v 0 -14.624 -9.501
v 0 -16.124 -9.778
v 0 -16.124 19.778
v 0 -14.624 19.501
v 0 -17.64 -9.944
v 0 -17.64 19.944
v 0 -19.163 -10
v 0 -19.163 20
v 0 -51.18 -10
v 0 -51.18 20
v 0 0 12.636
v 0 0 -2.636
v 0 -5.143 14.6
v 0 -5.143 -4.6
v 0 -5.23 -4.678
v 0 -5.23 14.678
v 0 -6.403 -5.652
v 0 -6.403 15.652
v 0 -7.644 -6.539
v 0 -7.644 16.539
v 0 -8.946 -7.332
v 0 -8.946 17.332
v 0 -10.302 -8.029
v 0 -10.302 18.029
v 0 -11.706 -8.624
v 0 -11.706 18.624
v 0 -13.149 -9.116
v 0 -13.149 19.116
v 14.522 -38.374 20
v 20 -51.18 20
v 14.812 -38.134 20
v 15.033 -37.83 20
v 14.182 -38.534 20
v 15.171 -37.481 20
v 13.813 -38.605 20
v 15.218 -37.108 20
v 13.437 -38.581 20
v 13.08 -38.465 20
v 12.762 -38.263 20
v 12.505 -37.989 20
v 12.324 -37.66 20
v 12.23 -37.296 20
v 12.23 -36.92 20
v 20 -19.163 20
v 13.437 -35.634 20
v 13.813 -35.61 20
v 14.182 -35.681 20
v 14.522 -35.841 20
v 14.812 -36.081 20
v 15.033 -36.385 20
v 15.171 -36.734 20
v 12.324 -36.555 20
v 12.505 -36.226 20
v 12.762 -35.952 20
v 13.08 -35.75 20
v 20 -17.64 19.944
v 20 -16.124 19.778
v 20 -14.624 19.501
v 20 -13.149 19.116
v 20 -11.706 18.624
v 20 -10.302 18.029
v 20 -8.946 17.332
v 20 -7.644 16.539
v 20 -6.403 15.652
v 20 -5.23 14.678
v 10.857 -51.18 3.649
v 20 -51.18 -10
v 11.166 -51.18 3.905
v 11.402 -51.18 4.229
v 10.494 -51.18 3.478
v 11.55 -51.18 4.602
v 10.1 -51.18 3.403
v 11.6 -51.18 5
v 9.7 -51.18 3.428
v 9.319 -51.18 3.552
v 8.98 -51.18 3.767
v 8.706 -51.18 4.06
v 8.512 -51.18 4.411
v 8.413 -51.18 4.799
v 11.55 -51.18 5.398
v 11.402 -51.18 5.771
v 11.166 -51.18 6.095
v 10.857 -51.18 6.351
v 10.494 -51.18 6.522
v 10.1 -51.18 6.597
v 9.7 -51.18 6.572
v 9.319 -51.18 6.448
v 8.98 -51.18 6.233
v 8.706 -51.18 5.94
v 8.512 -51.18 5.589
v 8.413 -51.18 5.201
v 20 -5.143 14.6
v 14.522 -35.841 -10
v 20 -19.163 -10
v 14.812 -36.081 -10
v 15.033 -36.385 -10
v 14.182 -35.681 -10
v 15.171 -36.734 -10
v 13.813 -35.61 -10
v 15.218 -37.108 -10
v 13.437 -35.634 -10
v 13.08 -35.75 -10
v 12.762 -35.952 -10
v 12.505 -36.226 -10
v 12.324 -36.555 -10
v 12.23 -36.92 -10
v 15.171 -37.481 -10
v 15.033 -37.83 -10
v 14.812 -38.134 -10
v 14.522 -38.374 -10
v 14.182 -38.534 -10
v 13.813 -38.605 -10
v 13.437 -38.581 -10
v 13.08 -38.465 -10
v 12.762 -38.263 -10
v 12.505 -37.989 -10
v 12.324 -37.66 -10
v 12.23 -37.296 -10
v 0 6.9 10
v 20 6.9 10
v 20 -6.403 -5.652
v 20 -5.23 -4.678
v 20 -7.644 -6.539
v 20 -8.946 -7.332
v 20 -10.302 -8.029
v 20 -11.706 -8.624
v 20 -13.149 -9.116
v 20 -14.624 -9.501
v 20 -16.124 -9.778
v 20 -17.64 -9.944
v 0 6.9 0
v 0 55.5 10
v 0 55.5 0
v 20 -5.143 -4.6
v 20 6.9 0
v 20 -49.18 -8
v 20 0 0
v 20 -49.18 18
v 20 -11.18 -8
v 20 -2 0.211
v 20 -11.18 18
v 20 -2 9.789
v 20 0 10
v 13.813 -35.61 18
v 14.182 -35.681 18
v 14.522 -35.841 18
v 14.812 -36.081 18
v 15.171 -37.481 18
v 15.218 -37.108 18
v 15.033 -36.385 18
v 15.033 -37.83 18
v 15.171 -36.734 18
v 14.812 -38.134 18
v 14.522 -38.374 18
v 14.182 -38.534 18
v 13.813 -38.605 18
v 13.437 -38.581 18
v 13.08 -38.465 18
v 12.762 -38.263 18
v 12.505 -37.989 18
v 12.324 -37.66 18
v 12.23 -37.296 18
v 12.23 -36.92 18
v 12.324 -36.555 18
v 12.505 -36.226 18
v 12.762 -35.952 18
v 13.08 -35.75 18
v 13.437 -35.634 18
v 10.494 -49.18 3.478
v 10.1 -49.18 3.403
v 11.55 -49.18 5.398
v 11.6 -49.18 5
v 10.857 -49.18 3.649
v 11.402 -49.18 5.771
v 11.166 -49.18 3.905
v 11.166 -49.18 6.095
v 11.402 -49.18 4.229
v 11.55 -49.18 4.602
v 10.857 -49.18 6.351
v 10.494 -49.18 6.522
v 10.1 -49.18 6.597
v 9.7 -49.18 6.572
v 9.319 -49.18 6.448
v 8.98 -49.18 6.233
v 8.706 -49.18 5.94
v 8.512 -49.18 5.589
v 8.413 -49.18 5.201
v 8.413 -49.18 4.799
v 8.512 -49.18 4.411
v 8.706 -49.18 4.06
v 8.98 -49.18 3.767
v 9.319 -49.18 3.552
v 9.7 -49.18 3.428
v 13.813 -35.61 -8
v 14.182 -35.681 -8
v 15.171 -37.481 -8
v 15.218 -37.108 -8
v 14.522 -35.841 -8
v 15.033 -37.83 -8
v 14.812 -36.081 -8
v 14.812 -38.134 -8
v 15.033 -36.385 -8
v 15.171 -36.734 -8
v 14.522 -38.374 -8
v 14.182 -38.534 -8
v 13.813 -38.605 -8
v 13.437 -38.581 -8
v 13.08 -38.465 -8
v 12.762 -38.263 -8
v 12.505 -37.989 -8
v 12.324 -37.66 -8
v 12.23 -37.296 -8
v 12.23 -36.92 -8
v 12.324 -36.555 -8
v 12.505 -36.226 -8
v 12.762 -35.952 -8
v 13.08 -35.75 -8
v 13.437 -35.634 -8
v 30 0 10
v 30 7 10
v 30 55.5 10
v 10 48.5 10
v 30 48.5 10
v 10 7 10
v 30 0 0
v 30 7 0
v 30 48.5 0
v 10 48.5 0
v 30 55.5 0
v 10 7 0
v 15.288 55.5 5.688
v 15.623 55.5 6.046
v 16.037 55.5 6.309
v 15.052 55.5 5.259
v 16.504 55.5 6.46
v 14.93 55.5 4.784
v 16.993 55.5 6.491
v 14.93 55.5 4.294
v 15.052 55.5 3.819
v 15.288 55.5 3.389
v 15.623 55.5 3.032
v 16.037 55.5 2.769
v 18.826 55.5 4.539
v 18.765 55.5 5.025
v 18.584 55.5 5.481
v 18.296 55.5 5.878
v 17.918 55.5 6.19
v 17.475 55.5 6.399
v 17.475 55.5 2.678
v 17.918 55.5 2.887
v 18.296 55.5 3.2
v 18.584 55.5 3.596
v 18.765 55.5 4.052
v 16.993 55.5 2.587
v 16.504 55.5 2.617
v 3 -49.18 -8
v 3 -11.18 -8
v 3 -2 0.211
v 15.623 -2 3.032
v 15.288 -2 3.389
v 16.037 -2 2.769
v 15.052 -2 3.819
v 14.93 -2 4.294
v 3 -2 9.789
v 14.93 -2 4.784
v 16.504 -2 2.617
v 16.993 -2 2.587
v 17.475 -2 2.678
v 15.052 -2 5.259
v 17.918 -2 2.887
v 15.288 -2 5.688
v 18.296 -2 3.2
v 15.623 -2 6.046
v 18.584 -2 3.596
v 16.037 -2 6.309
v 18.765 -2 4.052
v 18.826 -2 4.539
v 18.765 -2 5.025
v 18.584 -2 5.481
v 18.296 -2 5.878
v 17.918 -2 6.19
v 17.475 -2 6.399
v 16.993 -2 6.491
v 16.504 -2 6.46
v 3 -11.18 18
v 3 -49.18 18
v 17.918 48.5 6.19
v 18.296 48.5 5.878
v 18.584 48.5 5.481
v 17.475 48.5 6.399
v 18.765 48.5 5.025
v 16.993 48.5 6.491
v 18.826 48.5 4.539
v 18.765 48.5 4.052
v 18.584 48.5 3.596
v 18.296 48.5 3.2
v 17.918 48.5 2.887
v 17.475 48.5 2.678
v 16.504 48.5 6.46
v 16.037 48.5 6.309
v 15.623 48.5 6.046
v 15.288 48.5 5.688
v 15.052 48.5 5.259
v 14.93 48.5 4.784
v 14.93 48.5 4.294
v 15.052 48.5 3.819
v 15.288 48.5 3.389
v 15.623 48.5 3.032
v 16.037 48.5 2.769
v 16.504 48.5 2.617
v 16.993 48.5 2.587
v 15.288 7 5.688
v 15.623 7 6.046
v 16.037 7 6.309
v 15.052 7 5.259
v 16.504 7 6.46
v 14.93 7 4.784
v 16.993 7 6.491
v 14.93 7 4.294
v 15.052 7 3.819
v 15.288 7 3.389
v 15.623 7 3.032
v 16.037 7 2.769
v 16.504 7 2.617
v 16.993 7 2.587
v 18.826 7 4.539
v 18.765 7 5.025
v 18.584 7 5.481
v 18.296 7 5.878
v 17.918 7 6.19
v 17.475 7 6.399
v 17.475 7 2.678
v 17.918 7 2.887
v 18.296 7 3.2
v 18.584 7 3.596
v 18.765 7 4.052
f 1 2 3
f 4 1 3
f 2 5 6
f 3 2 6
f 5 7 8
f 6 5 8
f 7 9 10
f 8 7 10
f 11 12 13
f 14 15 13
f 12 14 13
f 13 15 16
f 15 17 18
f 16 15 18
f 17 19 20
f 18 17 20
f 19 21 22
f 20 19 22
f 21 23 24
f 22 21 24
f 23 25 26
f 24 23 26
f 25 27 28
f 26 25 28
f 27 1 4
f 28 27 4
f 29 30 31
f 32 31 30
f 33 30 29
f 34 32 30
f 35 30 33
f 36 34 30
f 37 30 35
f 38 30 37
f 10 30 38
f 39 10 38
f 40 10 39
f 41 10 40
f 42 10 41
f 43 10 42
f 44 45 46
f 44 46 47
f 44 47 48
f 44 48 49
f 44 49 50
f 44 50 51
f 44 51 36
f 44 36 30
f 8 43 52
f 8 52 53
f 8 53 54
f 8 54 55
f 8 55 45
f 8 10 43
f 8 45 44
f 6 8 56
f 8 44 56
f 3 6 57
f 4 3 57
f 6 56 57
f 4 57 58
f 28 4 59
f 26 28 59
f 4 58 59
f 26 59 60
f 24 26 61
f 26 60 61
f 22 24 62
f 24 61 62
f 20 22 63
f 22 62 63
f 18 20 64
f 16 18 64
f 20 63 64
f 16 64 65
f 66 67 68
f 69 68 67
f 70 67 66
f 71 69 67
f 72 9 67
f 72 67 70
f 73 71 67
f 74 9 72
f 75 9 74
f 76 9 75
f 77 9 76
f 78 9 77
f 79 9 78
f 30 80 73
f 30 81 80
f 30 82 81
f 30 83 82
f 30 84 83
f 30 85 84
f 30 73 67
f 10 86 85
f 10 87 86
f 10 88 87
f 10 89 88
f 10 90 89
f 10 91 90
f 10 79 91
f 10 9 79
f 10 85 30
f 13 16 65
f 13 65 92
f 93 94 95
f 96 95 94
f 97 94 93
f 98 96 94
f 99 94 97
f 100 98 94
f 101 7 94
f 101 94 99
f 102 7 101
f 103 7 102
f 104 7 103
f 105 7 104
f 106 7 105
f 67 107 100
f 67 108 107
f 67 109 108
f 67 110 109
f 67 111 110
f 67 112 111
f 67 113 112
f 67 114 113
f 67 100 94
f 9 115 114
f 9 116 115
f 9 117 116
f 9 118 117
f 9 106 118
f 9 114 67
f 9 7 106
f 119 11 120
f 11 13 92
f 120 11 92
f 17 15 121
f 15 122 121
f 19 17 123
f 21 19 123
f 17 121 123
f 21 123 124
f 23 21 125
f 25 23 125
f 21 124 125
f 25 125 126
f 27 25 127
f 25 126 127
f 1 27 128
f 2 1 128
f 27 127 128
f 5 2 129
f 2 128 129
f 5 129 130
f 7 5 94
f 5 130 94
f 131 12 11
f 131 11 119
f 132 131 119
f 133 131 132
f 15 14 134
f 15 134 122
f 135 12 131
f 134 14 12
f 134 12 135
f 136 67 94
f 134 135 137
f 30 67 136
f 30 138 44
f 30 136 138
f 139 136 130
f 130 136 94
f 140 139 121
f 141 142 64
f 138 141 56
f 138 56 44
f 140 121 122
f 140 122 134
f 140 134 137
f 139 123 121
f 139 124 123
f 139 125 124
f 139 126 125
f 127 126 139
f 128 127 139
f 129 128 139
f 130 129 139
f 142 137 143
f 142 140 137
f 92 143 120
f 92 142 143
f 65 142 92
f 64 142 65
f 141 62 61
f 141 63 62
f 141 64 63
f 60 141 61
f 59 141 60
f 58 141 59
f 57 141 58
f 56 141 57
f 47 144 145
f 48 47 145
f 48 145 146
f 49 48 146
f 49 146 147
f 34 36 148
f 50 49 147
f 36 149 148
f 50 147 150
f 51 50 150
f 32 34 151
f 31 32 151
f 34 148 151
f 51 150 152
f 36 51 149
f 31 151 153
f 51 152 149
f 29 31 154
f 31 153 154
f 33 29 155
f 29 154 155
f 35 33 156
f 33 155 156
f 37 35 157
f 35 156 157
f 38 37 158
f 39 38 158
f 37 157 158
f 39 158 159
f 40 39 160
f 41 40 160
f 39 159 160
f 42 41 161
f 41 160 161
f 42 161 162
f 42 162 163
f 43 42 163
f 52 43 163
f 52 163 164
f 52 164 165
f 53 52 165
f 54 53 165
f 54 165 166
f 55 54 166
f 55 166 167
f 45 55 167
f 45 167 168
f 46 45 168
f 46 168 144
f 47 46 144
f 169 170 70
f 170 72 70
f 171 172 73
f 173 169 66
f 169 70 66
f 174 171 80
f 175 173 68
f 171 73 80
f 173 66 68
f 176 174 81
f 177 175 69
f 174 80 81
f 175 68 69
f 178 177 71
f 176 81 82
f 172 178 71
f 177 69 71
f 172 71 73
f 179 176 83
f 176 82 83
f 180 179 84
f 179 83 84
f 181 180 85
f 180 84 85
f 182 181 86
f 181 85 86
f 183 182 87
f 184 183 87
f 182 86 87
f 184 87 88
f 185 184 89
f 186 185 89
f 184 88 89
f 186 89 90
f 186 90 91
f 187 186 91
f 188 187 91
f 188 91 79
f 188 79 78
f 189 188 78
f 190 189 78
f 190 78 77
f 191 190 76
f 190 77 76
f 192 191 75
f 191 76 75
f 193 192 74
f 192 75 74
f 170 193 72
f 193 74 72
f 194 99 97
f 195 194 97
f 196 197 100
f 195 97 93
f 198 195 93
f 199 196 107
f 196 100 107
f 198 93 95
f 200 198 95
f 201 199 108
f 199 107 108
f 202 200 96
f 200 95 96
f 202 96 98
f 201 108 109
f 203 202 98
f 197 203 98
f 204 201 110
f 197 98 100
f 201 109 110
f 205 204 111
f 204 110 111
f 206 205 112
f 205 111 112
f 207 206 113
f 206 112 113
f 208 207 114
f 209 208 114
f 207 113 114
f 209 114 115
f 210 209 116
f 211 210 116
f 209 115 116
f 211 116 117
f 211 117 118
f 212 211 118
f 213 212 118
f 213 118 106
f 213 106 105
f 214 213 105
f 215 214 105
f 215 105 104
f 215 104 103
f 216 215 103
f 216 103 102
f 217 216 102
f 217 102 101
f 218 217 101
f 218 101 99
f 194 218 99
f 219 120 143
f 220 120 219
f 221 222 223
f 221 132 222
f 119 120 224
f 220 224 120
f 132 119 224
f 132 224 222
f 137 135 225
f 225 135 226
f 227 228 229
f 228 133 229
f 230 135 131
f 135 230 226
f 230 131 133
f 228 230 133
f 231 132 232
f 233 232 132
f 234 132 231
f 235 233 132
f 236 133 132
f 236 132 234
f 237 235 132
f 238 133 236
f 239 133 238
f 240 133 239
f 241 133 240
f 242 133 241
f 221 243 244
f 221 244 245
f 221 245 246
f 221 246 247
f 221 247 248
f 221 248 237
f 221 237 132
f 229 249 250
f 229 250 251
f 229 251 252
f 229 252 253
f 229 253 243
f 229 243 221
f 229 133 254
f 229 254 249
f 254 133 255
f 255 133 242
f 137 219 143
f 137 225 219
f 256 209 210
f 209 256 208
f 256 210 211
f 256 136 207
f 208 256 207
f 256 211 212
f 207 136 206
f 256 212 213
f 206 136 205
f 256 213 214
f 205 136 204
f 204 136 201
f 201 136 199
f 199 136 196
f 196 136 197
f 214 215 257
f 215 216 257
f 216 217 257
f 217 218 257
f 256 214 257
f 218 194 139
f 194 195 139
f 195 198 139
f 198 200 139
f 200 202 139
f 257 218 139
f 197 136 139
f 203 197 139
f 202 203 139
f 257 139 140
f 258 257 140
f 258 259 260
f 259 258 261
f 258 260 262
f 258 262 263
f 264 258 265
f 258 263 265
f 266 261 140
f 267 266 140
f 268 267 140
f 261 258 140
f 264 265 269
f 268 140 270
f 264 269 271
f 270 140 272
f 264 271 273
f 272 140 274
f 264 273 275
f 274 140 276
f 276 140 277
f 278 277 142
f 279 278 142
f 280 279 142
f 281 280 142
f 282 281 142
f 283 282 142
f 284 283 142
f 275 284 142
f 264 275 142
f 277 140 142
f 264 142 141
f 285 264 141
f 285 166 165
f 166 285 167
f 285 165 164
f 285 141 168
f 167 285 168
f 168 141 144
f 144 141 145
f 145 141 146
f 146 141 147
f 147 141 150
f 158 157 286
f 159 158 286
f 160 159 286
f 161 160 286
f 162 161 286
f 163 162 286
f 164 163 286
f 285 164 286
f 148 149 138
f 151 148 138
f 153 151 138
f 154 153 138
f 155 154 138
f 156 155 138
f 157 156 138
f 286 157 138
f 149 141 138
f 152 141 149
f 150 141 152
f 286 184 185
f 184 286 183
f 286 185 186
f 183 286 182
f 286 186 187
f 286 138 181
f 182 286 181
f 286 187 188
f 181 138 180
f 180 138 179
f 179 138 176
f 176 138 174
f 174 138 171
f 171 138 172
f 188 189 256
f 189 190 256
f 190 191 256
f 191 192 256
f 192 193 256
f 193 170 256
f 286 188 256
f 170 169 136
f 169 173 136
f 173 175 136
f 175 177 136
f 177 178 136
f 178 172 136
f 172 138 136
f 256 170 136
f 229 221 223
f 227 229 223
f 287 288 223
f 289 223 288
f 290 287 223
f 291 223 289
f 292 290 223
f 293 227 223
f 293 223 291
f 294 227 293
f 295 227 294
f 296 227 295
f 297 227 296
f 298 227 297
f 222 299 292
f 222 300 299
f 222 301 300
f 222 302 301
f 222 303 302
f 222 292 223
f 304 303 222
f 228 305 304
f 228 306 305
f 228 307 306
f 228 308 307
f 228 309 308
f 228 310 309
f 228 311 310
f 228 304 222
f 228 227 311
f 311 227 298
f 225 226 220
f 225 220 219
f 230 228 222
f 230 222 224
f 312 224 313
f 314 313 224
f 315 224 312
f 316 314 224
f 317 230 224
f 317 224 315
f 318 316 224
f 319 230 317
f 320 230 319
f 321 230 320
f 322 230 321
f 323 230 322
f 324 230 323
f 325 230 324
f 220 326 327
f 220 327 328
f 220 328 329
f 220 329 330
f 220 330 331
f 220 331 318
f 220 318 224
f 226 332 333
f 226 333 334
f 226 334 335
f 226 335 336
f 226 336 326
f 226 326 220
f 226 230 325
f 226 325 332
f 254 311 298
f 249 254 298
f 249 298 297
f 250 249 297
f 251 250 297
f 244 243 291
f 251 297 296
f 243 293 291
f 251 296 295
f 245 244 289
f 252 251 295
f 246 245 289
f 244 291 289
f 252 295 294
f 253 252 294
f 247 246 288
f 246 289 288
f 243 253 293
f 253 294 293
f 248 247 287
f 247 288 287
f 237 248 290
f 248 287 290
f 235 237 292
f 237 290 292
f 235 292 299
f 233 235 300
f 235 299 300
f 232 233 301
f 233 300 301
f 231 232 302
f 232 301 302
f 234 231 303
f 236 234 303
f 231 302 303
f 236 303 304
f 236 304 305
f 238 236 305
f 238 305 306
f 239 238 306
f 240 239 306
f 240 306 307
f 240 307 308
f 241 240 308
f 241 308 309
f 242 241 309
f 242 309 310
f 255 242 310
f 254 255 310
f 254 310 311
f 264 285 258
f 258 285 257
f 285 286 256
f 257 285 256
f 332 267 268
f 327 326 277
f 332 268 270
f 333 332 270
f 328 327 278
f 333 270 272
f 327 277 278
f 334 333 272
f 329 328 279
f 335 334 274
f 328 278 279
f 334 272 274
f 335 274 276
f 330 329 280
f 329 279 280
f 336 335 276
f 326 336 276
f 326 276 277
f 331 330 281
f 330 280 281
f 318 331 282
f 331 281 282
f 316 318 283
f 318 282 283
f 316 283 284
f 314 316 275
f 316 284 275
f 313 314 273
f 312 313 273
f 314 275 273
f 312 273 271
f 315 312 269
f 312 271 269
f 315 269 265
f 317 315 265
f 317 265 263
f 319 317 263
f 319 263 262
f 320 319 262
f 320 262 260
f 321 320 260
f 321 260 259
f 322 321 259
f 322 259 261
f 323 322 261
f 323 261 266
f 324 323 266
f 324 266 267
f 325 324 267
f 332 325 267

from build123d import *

# Parameters (mm, degrees)
PAD_DEPTH       = 10
PAD001_DEPTH    = 20
SKETCH002_R     = 1.6
POCKET_DEPTH    = 17
POCKET001_DEPTH = 17
SKETCH004_R     = 1.956014
POCKET002_DEPTH = 57.501
SKETCH005_R     = 1.5
POCKET003_DEPTH = 30.001
CHAMFER_SIZE    = 6.9
CHAMFER001_SIZE = 6.9
FILLET_R        = 20.9
FILLET001_R     = 20.9


with BuildPart() as part:
    # Sketch → Pad (new body)
    with BuildSketch(Plane.XY):
        Polygon((30, 55.5), (30, 48.5), (10, 48.5), (10, 7), (30, 7), (30, 0), (0, 0), (0, 55.5), align=None)
    extrude(amount=PAD_DEPTH)

    # Sketch001 → Pad001 (new body)
    with BuildSketch(Plane(origin=(0, 0, 0), x_dir=(0, -1, 0), z_dir=(-1, 0, 0))):
        Polygon((0, 10), (0, 0), (11.18034, -10), (51.18034, -10), (51.18034, 20), (11.18034, 20), align=None)
    extrude(amount=-PAD001_DEPTH)

    # Sketch002 → Pocket (cut)
    with BuildSketch(Plane.XZ.offset(51.18034)):
        with Locations((10, 5)):
            Circle(SKETCH002_R)
    extrude(amount=-POCKET_DEPTH, mode=Mode.SUBTRACT)

    # Sketch003 → Pocket001 (cut)
    with BuildSketch(Plane.YZ.offset(20)):
        Polygon((-49.18034, 18), (-49.18034, -8), (-11.180357, -8), (-2, 0.211161), (-2, 9.788839), (-11.180357, 18), align=None)
    extrude(amount=-POCKET001_DEPTH, mode=Mode.SUBTRACT)

    # Sketch004 → Pocket002 (cut, through all)
    with BuildSketch(Plane.XZ.offset(2)):
        with Locations((16.870201, 4.538767)):
            Circle(SKETCH004_R)
    extrude(amount=-POCKET002_DEPTH, mode=Mode.SUBTRACT)

    # Sketch005 → Pocket003 (cut, through all)
    with BuildSketch(Plane(origin=(0, 0, -10), x_dir=(1, 0, 0), z_dir=(0, 0, -1))):
        with Locations((13.718381, 37.10752)):
            Circle(SKETCH005_R)
    extrude(amount=-POCKET003_DEPTH, mode=Mode.SUBTRACT)

    # Chamfer
    chamfer_edges = [part.edges().sort_by_distance(p)[0] for p in [
        (10, 0, 0),
    ]]
    chamfer(chamfer_edges, length=CHAMFER_SIZE)

    # Chamfer001
    chamfer001_edges = [part.edges().sort_by_distance(p)[0] for p in [
        (10, 0, 10),
    ]]
    chamfer(chamfer001_edges, length=CHAMFER001_SIZE)

    # Fillet
    fillet_edges = [part.edges().sort_by_distance(p)[0] for p in [
        (10, -11.18034, -10),
    ]]
    fillet(fillet_edges, radius=FILLET_R)

    # Fillet001
    fillet001_edges = [part.edges().sort_by_distance(p)[0] for p in [
        (10, -11.18034, 20),
    ]]
    fillet(fillet001_edges, radius=FILLET001_R)


solid = part.part
